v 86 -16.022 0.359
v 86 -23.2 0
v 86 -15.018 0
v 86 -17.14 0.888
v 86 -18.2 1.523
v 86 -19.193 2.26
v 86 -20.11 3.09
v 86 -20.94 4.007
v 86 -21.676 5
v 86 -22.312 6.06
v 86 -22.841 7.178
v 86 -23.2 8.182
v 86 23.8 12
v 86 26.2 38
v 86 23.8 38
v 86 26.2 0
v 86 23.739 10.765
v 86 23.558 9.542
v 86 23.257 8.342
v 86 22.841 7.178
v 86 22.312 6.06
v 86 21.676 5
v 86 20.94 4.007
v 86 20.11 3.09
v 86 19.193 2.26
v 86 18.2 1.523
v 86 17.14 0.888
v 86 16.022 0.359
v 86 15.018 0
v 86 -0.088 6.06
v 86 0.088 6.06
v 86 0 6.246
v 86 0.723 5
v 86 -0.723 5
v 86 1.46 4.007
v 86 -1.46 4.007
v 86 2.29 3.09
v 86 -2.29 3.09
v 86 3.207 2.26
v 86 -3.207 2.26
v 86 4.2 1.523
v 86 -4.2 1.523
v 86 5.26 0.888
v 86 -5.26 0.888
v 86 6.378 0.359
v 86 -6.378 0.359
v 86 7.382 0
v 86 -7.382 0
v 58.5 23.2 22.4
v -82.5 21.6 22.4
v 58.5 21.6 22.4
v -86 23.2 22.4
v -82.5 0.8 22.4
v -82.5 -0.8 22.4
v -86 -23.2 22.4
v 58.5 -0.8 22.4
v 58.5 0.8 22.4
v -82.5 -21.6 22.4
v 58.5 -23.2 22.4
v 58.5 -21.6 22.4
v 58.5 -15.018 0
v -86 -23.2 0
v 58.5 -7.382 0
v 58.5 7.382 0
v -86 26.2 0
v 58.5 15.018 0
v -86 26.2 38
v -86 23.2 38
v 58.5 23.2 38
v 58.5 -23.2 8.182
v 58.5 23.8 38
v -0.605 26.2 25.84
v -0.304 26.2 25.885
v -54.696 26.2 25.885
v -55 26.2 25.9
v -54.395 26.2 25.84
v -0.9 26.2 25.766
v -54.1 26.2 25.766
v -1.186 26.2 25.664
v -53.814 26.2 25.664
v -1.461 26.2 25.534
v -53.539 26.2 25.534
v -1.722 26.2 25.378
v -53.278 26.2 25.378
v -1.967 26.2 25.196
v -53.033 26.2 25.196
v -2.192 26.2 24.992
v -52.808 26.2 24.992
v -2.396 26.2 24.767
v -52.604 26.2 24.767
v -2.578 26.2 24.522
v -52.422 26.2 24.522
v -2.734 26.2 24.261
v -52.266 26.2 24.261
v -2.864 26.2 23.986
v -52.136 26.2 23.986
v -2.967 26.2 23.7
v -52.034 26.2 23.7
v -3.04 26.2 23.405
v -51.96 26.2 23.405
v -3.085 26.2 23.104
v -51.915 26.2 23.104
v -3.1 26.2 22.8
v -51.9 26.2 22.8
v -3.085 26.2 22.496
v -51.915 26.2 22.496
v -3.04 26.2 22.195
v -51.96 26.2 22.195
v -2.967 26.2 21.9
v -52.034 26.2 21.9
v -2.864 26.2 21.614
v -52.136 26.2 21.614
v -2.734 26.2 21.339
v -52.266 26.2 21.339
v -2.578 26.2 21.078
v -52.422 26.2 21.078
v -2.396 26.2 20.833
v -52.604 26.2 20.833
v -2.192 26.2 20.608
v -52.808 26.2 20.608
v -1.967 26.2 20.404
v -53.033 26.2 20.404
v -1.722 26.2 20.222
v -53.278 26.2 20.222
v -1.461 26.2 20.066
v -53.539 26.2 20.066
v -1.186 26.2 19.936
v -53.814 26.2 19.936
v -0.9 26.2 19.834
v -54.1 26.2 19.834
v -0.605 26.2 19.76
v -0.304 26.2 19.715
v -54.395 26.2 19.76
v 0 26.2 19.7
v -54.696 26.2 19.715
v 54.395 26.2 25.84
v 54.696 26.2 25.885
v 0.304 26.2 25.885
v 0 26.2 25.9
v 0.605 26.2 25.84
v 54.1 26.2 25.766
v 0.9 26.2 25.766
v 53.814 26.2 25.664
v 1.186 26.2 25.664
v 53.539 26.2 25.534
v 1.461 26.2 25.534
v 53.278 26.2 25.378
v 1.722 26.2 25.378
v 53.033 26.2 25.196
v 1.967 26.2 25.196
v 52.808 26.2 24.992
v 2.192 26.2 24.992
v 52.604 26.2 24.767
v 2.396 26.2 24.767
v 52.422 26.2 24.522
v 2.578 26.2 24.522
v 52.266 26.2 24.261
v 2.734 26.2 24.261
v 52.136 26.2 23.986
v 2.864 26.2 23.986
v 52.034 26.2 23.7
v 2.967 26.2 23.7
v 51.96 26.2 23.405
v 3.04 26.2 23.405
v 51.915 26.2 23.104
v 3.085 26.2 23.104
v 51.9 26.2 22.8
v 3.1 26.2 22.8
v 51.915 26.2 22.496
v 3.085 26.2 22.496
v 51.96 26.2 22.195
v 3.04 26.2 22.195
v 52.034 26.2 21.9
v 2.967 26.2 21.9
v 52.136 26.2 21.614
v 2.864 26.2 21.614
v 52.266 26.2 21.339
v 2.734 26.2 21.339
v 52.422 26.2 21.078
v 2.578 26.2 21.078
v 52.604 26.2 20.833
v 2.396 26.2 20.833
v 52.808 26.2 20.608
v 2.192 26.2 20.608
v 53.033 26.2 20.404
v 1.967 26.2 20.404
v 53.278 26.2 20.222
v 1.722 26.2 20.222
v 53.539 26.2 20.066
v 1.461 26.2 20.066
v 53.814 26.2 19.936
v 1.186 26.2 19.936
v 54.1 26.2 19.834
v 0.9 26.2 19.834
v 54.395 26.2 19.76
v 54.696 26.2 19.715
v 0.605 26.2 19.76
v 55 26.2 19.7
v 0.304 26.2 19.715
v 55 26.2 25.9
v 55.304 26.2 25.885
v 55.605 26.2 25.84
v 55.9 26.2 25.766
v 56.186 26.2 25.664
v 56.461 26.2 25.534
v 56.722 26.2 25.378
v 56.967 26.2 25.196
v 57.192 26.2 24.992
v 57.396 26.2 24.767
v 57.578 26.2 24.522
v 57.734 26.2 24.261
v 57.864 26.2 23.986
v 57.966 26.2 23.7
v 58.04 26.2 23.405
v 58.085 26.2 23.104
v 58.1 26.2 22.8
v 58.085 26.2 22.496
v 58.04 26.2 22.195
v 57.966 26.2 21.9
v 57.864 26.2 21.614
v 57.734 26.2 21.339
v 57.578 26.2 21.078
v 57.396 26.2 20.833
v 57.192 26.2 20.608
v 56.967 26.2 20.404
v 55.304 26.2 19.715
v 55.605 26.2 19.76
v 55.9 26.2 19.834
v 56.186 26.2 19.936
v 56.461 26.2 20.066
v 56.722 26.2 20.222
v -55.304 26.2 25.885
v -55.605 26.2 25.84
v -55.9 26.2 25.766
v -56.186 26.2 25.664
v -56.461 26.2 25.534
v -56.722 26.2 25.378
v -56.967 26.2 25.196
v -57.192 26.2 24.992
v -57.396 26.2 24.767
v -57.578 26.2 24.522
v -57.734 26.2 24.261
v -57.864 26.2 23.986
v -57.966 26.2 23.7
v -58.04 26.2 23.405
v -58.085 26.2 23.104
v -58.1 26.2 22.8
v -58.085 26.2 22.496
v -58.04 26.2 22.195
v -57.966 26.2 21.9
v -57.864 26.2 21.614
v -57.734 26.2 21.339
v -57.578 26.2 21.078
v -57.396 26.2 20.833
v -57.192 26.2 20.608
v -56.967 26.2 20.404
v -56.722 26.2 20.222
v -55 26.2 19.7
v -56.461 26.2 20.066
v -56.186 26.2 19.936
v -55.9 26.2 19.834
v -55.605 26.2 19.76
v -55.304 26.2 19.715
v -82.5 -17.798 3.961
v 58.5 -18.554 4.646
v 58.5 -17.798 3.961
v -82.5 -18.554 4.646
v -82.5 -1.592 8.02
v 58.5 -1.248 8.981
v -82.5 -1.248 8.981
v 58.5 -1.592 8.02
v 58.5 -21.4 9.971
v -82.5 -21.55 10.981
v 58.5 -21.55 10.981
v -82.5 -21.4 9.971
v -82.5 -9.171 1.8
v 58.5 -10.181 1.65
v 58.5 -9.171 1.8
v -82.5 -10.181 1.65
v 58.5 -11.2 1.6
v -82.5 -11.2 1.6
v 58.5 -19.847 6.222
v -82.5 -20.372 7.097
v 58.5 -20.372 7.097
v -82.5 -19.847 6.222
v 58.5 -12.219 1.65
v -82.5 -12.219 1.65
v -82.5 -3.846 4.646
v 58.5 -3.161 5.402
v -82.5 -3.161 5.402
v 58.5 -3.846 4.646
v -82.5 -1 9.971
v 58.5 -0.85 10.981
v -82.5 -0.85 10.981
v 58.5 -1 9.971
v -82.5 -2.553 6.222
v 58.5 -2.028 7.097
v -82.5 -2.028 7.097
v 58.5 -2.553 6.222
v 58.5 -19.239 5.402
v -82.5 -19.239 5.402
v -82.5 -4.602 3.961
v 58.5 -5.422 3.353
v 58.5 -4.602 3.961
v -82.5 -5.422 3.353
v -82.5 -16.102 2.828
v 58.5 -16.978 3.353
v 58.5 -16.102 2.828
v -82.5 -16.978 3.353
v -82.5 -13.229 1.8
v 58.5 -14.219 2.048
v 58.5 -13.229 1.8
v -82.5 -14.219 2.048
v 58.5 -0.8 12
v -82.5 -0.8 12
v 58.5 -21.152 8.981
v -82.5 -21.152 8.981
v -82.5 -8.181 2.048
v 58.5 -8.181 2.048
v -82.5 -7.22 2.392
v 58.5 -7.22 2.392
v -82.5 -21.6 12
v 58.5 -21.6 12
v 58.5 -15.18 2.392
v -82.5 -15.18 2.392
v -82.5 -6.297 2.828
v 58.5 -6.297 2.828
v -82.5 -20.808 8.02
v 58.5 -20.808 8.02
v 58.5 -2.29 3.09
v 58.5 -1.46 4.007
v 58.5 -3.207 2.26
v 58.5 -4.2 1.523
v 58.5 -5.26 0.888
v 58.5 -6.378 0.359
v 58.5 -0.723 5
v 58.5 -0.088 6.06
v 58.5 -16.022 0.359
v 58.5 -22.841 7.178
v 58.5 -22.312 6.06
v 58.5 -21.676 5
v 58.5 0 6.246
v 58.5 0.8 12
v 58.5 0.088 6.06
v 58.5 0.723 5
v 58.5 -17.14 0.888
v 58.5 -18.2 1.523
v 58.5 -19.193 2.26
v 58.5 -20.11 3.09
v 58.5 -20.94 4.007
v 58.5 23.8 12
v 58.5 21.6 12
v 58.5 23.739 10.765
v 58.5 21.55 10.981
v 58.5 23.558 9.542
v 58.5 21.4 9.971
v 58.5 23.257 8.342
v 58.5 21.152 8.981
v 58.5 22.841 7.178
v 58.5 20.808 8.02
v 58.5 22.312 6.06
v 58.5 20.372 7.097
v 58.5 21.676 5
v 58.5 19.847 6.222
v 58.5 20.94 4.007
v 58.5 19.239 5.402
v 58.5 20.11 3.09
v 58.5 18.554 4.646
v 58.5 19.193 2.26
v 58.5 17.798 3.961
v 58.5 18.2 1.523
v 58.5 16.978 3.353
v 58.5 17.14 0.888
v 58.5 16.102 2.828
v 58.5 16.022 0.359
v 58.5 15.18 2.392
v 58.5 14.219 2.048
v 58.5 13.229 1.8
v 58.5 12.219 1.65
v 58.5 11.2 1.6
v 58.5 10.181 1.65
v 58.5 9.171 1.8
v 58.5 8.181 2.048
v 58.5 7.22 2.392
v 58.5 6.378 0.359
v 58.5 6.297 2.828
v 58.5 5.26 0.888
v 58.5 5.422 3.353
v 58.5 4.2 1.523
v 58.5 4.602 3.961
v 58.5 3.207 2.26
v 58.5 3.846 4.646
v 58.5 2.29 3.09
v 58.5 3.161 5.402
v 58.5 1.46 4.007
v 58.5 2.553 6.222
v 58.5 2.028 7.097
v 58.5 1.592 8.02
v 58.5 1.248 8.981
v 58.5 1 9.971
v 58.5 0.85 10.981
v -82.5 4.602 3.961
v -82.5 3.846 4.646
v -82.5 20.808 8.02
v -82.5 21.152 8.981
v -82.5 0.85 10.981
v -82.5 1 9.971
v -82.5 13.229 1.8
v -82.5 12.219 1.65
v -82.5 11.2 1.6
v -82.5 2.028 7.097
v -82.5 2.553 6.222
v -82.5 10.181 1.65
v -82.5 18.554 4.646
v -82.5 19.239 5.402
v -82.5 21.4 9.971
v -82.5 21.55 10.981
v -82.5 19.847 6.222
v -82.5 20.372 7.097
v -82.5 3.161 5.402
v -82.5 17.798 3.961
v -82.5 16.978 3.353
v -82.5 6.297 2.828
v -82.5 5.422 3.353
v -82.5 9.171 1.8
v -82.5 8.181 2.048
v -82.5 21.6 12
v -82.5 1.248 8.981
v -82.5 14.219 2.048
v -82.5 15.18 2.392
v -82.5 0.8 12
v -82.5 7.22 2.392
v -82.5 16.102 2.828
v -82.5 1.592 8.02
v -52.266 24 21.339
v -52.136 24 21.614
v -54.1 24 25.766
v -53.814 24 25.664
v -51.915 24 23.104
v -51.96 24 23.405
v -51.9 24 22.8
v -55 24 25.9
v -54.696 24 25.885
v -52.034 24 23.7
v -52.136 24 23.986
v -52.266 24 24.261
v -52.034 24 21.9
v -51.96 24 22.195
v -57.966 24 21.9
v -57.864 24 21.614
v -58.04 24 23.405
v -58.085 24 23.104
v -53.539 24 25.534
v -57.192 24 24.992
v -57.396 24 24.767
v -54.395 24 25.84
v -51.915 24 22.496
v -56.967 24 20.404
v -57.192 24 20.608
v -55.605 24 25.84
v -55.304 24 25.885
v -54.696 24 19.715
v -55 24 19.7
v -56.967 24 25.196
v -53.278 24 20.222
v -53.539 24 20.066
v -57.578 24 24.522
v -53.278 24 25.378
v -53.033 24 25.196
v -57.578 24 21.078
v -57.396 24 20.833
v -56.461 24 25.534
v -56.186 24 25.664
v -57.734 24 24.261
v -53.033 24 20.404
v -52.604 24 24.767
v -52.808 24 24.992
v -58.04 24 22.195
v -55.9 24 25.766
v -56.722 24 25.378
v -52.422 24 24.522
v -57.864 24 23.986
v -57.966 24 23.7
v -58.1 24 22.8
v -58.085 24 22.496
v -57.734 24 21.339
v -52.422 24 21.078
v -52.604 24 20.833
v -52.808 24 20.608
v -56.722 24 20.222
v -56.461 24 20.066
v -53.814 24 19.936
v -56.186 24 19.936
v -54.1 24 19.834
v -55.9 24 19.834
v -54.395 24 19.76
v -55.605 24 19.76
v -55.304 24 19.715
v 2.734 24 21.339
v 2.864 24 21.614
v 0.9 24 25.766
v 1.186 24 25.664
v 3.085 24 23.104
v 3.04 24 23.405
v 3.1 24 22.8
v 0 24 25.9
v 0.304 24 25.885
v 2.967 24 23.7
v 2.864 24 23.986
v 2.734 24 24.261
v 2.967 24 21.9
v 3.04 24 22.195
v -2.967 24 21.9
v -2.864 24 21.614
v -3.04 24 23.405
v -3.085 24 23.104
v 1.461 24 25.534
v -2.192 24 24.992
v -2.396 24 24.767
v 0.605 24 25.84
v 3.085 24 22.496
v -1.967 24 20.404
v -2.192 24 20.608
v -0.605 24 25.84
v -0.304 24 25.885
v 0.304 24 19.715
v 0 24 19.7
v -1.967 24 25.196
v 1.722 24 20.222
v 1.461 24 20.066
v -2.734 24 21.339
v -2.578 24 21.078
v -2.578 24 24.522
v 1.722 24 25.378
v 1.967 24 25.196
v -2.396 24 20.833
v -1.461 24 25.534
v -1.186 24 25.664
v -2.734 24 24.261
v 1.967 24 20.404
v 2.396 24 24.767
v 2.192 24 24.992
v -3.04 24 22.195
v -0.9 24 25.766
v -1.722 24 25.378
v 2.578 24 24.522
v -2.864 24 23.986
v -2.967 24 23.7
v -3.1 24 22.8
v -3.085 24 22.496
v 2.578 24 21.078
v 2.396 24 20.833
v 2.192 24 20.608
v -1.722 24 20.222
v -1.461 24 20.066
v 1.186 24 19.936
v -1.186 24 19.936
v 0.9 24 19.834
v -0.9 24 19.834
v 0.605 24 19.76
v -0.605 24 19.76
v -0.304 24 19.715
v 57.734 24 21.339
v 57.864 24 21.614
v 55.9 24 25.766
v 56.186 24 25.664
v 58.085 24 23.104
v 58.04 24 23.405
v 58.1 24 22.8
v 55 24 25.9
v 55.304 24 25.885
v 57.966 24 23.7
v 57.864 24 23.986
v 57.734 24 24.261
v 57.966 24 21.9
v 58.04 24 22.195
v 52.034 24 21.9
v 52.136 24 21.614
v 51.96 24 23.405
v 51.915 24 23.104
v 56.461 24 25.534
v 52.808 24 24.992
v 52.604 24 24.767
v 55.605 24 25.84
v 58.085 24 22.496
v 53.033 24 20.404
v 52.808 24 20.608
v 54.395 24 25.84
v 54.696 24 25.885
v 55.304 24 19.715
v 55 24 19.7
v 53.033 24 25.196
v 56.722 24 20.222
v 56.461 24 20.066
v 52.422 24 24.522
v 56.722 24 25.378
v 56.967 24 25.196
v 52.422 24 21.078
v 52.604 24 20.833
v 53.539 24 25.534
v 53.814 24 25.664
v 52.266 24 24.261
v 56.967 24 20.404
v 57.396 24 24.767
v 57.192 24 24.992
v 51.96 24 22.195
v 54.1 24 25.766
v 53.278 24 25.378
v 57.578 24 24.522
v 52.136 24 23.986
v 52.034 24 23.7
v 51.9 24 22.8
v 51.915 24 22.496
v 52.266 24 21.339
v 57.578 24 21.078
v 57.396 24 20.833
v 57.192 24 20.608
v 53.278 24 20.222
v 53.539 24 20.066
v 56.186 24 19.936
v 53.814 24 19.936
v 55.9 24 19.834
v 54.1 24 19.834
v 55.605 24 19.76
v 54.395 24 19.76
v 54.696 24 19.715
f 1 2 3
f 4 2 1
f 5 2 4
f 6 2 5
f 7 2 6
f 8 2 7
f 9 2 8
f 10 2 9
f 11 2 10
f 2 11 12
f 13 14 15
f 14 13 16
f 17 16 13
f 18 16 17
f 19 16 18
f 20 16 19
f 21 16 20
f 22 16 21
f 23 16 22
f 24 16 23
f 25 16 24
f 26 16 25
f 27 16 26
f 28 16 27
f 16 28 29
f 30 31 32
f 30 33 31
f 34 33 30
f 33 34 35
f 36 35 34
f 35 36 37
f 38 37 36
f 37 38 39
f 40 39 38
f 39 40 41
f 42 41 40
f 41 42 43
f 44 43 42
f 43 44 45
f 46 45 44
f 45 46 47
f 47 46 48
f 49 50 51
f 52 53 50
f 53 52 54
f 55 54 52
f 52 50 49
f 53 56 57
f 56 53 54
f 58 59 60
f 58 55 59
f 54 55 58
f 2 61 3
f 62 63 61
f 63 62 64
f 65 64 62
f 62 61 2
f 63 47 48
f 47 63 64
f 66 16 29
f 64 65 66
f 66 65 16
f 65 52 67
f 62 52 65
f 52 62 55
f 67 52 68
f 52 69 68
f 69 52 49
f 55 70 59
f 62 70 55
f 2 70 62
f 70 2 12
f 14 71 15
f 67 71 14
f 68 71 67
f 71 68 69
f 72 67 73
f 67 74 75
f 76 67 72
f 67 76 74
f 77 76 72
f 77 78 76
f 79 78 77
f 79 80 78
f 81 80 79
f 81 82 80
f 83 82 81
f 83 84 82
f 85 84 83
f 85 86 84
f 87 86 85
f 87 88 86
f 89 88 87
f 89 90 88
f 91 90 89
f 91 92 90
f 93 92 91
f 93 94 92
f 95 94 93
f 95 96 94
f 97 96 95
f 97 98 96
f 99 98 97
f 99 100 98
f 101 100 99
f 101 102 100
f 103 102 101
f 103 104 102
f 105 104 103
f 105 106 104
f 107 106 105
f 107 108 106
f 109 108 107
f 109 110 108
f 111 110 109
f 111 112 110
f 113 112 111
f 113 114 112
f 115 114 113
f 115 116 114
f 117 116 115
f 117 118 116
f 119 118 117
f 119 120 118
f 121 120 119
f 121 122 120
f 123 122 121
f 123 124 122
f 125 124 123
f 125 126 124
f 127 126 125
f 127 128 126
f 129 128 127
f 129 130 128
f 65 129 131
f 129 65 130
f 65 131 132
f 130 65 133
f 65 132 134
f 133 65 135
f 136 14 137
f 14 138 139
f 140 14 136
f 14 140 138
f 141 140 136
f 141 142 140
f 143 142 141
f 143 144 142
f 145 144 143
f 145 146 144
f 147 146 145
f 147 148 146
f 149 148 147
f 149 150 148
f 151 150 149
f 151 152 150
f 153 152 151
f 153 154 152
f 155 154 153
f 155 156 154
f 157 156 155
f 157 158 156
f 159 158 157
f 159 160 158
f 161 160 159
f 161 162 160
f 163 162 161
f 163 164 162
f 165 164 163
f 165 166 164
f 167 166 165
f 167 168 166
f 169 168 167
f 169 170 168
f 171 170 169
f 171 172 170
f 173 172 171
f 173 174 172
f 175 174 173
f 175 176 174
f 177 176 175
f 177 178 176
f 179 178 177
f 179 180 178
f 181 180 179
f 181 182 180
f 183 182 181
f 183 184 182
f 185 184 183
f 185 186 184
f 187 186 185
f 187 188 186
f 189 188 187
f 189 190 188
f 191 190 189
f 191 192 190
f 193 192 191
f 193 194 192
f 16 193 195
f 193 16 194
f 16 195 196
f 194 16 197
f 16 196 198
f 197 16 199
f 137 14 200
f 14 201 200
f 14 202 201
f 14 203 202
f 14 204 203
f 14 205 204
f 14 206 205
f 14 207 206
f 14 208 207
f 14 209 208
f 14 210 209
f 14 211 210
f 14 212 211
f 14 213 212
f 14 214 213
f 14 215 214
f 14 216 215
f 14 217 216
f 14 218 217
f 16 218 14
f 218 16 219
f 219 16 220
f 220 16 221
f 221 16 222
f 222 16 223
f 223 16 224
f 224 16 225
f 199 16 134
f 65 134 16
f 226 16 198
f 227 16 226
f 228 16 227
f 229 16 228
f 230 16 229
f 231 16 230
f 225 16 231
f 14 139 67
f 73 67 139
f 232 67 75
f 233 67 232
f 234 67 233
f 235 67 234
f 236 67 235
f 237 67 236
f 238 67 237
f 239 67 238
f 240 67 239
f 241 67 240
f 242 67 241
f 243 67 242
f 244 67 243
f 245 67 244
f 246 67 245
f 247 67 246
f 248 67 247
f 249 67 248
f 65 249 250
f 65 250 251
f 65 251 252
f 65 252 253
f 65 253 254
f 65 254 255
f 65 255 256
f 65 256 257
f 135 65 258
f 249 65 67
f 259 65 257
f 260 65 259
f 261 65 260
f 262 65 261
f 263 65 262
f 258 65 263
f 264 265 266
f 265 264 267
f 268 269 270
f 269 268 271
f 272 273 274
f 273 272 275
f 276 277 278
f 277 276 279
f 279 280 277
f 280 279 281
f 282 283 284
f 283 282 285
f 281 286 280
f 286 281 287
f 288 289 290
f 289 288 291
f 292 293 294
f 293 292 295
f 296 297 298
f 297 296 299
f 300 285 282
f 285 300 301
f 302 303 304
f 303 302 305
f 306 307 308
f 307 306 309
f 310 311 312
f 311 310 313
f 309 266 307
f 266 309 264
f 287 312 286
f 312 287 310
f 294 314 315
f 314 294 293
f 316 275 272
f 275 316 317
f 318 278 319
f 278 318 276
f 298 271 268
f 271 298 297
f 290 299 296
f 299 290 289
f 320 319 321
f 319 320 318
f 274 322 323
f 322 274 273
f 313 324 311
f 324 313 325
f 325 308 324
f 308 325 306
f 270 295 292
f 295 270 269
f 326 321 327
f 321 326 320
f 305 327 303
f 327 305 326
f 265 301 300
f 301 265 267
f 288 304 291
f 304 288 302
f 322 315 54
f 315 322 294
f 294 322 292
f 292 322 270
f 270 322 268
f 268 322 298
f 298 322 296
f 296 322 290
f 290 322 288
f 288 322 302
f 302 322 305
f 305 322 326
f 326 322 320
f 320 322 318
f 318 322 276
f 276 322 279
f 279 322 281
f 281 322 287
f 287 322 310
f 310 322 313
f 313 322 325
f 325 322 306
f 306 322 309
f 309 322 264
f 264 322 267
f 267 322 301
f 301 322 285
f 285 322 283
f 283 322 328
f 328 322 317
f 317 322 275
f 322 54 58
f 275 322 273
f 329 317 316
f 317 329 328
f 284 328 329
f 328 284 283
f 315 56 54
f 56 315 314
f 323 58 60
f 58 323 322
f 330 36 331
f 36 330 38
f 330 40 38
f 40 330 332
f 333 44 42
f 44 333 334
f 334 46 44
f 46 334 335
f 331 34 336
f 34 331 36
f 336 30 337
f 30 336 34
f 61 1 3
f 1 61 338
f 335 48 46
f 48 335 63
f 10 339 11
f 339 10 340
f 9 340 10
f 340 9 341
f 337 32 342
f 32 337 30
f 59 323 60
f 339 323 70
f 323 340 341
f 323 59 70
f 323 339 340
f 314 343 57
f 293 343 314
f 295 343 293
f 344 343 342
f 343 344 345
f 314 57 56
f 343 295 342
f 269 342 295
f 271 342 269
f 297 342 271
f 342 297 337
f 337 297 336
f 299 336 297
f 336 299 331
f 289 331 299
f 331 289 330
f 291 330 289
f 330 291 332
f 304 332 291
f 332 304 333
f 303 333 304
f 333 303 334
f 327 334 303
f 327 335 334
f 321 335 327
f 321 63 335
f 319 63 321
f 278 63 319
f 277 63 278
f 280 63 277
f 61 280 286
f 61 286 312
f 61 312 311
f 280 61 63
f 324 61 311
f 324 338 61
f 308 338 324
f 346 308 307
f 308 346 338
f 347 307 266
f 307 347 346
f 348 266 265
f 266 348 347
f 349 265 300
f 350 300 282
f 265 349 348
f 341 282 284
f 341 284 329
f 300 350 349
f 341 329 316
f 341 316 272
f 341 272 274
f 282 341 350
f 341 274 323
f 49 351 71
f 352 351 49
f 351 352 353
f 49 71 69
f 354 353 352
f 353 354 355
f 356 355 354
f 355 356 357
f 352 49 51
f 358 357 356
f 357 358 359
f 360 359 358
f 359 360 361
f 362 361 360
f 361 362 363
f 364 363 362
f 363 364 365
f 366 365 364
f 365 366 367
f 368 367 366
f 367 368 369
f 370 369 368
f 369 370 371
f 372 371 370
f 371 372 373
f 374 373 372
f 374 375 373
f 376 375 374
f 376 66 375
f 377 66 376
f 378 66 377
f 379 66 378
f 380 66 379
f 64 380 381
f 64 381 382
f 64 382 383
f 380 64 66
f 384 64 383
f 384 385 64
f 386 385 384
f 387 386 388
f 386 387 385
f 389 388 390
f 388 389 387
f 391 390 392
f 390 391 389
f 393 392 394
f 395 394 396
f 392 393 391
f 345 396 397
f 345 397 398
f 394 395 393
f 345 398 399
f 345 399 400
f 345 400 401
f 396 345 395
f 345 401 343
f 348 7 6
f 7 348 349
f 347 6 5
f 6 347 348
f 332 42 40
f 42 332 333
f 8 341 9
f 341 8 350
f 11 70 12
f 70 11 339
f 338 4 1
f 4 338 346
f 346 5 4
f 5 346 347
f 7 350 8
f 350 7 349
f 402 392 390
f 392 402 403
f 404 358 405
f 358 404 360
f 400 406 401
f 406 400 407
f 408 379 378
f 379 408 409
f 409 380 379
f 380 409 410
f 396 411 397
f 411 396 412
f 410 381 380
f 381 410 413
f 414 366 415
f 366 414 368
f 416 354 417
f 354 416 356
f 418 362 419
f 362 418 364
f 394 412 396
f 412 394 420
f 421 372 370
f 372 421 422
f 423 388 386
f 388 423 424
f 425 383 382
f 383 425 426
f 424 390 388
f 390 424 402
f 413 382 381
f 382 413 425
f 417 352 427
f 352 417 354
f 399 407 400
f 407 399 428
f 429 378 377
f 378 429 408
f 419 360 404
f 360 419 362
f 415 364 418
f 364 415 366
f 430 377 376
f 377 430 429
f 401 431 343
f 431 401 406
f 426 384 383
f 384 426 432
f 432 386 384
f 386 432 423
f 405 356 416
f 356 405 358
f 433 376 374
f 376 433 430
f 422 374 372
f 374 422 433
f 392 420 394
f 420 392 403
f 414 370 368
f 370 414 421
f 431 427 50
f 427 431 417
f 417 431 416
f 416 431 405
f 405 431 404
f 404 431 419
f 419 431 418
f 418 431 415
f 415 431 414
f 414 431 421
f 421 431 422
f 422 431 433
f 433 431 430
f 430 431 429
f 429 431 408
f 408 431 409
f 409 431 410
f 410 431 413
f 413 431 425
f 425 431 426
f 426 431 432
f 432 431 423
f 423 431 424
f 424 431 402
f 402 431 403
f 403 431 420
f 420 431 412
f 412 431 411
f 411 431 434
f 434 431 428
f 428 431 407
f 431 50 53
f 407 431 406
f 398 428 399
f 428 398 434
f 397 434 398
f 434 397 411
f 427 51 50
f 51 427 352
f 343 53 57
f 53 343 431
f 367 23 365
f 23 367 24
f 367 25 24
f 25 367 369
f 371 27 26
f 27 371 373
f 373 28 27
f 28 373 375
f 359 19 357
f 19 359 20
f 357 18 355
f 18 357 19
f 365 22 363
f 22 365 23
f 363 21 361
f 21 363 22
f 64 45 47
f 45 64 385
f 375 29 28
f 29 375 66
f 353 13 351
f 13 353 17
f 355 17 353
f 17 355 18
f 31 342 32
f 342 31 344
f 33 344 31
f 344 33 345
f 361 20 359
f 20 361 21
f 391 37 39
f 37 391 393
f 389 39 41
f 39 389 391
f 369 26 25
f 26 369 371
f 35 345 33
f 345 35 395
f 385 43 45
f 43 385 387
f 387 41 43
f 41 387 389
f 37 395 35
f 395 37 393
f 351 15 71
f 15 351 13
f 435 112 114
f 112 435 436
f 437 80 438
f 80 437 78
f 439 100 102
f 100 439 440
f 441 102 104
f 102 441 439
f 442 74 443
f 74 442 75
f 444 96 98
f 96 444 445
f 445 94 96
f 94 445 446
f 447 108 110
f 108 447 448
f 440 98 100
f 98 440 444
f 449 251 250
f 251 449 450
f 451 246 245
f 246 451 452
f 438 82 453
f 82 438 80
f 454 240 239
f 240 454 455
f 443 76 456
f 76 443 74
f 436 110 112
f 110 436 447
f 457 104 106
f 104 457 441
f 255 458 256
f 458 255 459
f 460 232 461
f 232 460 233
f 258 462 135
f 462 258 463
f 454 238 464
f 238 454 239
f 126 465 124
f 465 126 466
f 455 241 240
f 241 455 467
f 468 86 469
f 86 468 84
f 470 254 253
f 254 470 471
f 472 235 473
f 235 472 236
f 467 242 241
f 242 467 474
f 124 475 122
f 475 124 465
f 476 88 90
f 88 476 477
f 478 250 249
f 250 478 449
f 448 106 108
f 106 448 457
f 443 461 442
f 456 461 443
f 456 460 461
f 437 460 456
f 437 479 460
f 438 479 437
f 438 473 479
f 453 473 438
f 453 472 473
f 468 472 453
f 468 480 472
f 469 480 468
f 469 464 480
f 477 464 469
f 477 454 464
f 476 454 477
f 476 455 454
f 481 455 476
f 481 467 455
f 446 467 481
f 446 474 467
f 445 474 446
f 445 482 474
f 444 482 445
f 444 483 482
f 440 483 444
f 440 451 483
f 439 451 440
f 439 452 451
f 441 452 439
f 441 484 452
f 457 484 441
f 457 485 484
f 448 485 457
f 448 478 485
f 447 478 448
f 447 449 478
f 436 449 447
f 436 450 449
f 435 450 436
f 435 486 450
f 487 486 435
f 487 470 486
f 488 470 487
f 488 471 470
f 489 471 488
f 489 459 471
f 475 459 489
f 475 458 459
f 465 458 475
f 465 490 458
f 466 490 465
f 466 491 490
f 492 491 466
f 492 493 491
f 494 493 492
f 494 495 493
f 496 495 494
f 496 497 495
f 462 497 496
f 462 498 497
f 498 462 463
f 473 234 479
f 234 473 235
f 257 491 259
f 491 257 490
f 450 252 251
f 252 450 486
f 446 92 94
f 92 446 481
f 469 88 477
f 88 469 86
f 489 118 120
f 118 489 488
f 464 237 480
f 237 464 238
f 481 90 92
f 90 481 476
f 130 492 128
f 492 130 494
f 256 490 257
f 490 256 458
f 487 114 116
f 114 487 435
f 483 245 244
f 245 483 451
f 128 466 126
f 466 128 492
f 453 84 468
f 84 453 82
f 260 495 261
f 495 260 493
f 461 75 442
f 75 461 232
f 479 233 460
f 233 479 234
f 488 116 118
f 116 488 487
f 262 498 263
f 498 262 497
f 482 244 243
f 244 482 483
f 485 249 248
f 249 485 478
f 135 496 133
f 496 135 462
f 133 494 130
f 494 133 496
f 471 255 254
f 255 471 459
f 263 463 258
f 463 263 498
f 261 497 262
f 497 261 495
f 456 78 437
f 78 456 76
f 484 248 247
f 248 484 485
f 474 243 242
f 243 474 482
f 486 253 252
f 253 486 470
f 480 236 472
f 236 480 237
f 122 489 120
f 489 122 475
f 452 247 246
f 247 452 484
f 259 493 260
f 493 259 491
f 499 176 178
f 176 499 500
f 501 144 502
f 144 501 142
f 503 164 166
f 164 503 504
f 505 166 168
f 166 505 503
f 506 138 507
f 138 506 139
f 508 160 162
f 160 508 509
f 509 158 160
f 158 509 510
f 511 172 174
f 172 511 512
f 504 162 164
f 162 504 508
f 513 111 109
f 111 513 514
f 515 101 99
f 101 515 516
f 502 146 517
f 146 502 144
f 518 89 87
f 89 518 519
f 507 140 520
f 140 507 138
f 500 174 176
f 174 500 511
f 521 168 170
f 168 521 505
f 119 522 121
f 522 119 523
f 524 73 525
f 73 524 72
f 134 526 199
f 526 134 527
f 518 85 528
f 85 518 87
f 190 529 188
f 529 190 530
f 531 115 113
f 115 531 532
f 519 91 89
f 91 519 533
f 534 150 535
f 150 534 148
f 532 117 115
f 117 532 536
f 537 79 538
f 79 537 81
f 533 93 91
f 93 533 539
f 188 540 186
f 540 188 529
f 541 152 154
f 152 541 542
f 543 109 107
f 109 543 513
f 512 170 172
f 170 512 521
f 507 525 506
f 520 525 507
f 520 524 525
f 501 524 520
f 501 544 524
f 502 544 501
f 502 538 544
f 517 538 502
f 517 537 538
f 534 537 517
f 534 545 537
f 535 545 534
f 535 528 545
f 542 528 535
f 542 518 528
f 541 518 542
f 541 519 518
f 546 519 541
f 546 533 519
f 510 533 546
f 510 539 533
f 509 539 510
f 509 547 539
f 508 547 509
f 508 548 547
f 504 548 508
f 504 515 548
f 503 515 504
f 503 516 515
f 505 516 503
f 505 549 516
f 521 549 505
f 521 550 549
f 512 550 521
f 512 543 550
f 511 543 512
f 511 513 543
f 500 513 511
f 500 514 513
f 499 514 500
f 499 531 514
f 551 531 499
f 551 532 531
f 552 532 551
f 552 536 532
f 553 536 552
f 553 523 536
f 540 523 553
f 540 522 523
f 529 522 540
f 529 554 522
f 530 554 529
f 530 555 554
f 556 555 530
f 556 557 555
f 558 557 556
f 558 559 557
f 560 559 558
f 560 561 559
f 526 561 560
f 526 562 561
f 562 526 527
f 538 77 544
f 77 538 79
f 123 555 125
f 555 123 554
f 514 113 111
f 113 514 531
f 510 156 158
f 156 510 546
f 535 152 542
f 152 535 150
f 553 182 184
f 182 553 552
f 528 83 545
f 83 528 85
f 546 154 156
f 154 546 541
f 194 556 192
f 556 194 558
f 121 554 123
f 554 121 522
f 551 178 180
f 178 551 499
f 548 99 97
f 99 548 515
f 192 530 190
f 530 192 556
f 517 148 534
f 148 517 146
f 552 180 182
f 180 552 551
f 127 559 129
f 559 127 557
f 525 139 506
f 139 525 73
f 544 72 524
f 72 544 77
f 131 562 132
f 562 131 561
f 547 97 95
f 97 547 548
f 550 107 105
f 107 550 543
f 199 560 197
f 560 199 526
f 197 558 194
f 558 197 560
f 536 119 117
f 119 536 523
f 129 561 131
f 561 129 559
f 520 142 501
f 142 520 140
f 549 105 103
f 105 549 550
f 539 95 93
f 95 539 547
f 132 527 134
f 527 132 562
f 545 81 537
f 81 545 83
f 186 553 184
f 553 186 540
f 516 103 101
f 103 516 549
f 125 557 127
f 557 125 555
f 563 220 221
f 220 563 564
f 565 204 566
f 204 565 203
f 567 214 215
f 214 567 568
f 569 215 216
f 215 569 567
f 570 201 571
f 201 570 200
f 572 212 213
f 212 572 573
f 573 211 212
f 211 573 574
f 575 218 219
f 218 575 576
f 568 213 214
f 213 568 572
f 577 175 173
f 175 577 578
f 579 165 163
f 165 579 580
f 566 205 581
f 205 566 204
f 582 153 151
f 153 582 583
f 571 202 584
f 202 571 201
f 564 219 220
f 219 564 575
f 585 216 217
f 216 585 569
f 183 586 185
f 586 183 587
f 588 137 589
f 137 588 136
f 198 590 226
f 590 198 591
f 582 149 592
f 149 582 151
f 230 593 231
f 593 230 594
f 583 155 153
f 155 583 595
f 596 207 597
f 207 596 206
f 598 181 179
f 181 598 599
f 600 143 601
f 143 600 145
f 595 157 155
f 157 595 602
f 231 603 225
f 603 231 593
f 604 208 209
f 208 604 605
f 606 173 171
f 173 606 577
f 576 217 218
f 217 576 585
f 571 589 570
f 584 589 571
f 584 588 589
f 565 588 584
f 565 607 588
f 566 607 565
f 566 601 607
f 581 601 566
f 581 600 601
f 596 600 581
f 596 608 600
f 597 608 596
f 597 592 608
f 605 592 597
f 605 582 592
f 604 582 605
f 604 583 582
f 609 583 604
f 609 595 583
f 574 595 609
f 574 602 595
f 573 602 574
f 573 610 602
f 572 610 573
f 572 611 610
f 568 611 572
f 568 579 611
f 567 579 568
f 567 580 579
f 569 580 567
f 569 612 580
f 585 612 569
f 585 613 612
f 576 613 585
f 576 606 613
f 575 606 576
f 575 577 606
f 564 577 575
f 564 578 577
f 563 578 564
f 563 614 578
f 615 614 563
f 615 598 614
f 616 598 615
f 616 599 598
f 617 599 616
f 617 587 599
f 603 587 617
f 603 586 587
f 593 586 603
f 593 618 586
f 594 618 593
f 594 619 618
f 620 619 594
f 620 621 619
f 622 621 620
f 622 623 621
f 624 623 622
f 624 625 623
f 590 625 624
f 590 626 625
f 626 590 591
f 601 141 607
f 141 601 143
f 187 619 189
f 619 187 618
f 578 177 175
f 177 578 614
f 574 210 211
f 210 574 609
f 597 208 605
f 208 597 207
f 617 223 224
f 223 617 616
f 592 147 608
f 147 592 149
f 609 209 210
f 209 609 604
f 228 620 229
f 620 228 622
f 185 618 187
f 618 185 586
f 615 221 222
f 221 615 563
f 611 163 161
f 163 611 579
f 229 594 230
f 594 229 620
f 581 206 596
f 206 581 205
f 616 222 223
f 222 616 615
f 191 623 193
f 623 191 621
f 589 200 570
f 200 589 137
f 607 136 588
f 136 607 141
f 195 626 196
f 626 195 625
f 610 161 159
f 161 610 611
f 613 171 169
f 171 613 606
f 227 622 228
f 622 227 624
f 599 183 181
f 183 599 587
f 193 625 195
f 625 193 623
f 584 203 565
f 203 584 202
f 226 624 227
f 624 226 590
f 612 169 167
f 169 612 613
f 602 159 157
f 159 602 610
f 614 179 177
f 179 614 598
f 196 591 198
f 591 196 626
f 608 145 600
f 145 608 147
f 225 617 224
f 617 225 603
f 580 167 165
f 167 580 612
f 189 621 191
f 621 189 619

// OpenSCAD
// file: common.scad
// ============================================================
// common.scad — shared parameters + modules for all designs
// LOCKED PEN SPECIFICATION (do not change)
// ============================================================
PEN_L = 165;      // pen length (mm)
PEN_A = 17;       // pen cross-section minor
PEN_B = 20;       // pen cross-section major (used as diameter envelope)
CLEAR = 0.4;      // fit clearance
WALL  = 1.6;      // minimum wall thickness

$fn = 64;

RCH = PEN_B/2 + CLEAR;   // = 10.4  channel radius
EPS = 0.01;

// --- open-top U trough cut, axis along X, centered at local origin -----------
// Removes a lower half-cylinder of radius r plus a full-width vertical slot
// upward, so the channel is open at the top (no ceiling -> no overhang).
module trough_cut(len, r=RCH, top=80) {
    union() {
        rotate([0,90,0]) cylinder(h=len, r=r, center=true);
        translate([0,0,top/2]) cube([len, 2*r, top], center=true); // slot upward
    }
}

// --- teardrop hole, axis along X, centered at local origin --------------------
// 45-degree self-supporting apex pointing +Z so a horizontal bore can print
// without support.
module teardrop_cut(len, r=RCH) {
    rotate([0,90,0])
        linear_extrude(height=len, center=true)
            union() {
                circle(r=r);
                polygon([[ 0.7071*r, 0.7071*r],
                         [ 0,         1.4142*r],
                         [-0.7071*r,  0.7071*r]]);
            }
}

// --- dial relief: widened open-top pocket at one channel end -----------------
// place at the +X or -X end of a channel so the dose dial clears / can be turned
module dial_relief(end_x, r=RCH+2.2, len=28, top=80) {
    translate([end_x, 0, 0]) trough_cut(len, r, top);
}
// main file
// d4_magnetic — twin cradle on an L-base with a magnet-pocket back wall
// Family: magnetic / wall-mount carrier. Pens lie in open troughs; a vertical
// back wall carries blind magnet pockets so the whole carrier snaps onto a
// steel shelf or fridge rail.
// Creative variation: mountable carrier — vertical back wall = no overhang,
// magnet pockets are drilled horizontally into the wall from the back.
include <common.scad>

LBLK = 172;
PITCH = 2*RCH + WALL;             // 22.4
Y1 = -PITCH/2;
Y2 =  PITCH/2;
HBASE = WALL + 2*RCH;             // 22.4 trough block
WBASE = PITCH + 2*RCH + 2*WALL;   // 46.4
ZC = WALL + RCH;

BWALL = 3.0;                      // back wall thickness
BWALL_H = 38;                     // back wall height  (< 152.4)
YBACK = WBASE/2;                  // back wall at +Y edge
WTOT = WBASE + BWALL;             // 49.4  < 63.5

MAG_D = 6.2;                      // magnet diameter pocket
MAG_DEPTH = 2.2;                  // blind depth

difference() {
    union() {
        // trough base
        translate([0,0,HBASE/2]) cube([LBLK, WBASE, HBASE], center=true);
        // vertical back wall along +Y edge (faces vertical -> no overhang)
        translate([0, YBACK + BWALL/2, BWALL_H/2])
            cube([LBLK, BWALL, BWALL_H], center=true);
    }
    // two pen troughs + dial reliefs (both at +X end)
    translate([0, Y1, ZC]) trough_cut(PEN_L);
    translate([0, Y1, ZC]) dial_relief(PEN_L/2 - 10);
    translate([0, Y2, ZC]) trough_cut(PEN_L);
    translate([0, Y2, ZC]) dial_relief(PEN_L/2 - 10);

    // magnet pockets: blind holes drilled from the BACK (+Y) into the wall
    for (x = [-55, 0, 55]) {
        translate([x, YBACK + BWALL + EPS, BWALL_H*0.6])
            rotate([90,0,0]) cylinder(h=MAG_DEPTH + EPS, d=MAG_D);
    }
}
